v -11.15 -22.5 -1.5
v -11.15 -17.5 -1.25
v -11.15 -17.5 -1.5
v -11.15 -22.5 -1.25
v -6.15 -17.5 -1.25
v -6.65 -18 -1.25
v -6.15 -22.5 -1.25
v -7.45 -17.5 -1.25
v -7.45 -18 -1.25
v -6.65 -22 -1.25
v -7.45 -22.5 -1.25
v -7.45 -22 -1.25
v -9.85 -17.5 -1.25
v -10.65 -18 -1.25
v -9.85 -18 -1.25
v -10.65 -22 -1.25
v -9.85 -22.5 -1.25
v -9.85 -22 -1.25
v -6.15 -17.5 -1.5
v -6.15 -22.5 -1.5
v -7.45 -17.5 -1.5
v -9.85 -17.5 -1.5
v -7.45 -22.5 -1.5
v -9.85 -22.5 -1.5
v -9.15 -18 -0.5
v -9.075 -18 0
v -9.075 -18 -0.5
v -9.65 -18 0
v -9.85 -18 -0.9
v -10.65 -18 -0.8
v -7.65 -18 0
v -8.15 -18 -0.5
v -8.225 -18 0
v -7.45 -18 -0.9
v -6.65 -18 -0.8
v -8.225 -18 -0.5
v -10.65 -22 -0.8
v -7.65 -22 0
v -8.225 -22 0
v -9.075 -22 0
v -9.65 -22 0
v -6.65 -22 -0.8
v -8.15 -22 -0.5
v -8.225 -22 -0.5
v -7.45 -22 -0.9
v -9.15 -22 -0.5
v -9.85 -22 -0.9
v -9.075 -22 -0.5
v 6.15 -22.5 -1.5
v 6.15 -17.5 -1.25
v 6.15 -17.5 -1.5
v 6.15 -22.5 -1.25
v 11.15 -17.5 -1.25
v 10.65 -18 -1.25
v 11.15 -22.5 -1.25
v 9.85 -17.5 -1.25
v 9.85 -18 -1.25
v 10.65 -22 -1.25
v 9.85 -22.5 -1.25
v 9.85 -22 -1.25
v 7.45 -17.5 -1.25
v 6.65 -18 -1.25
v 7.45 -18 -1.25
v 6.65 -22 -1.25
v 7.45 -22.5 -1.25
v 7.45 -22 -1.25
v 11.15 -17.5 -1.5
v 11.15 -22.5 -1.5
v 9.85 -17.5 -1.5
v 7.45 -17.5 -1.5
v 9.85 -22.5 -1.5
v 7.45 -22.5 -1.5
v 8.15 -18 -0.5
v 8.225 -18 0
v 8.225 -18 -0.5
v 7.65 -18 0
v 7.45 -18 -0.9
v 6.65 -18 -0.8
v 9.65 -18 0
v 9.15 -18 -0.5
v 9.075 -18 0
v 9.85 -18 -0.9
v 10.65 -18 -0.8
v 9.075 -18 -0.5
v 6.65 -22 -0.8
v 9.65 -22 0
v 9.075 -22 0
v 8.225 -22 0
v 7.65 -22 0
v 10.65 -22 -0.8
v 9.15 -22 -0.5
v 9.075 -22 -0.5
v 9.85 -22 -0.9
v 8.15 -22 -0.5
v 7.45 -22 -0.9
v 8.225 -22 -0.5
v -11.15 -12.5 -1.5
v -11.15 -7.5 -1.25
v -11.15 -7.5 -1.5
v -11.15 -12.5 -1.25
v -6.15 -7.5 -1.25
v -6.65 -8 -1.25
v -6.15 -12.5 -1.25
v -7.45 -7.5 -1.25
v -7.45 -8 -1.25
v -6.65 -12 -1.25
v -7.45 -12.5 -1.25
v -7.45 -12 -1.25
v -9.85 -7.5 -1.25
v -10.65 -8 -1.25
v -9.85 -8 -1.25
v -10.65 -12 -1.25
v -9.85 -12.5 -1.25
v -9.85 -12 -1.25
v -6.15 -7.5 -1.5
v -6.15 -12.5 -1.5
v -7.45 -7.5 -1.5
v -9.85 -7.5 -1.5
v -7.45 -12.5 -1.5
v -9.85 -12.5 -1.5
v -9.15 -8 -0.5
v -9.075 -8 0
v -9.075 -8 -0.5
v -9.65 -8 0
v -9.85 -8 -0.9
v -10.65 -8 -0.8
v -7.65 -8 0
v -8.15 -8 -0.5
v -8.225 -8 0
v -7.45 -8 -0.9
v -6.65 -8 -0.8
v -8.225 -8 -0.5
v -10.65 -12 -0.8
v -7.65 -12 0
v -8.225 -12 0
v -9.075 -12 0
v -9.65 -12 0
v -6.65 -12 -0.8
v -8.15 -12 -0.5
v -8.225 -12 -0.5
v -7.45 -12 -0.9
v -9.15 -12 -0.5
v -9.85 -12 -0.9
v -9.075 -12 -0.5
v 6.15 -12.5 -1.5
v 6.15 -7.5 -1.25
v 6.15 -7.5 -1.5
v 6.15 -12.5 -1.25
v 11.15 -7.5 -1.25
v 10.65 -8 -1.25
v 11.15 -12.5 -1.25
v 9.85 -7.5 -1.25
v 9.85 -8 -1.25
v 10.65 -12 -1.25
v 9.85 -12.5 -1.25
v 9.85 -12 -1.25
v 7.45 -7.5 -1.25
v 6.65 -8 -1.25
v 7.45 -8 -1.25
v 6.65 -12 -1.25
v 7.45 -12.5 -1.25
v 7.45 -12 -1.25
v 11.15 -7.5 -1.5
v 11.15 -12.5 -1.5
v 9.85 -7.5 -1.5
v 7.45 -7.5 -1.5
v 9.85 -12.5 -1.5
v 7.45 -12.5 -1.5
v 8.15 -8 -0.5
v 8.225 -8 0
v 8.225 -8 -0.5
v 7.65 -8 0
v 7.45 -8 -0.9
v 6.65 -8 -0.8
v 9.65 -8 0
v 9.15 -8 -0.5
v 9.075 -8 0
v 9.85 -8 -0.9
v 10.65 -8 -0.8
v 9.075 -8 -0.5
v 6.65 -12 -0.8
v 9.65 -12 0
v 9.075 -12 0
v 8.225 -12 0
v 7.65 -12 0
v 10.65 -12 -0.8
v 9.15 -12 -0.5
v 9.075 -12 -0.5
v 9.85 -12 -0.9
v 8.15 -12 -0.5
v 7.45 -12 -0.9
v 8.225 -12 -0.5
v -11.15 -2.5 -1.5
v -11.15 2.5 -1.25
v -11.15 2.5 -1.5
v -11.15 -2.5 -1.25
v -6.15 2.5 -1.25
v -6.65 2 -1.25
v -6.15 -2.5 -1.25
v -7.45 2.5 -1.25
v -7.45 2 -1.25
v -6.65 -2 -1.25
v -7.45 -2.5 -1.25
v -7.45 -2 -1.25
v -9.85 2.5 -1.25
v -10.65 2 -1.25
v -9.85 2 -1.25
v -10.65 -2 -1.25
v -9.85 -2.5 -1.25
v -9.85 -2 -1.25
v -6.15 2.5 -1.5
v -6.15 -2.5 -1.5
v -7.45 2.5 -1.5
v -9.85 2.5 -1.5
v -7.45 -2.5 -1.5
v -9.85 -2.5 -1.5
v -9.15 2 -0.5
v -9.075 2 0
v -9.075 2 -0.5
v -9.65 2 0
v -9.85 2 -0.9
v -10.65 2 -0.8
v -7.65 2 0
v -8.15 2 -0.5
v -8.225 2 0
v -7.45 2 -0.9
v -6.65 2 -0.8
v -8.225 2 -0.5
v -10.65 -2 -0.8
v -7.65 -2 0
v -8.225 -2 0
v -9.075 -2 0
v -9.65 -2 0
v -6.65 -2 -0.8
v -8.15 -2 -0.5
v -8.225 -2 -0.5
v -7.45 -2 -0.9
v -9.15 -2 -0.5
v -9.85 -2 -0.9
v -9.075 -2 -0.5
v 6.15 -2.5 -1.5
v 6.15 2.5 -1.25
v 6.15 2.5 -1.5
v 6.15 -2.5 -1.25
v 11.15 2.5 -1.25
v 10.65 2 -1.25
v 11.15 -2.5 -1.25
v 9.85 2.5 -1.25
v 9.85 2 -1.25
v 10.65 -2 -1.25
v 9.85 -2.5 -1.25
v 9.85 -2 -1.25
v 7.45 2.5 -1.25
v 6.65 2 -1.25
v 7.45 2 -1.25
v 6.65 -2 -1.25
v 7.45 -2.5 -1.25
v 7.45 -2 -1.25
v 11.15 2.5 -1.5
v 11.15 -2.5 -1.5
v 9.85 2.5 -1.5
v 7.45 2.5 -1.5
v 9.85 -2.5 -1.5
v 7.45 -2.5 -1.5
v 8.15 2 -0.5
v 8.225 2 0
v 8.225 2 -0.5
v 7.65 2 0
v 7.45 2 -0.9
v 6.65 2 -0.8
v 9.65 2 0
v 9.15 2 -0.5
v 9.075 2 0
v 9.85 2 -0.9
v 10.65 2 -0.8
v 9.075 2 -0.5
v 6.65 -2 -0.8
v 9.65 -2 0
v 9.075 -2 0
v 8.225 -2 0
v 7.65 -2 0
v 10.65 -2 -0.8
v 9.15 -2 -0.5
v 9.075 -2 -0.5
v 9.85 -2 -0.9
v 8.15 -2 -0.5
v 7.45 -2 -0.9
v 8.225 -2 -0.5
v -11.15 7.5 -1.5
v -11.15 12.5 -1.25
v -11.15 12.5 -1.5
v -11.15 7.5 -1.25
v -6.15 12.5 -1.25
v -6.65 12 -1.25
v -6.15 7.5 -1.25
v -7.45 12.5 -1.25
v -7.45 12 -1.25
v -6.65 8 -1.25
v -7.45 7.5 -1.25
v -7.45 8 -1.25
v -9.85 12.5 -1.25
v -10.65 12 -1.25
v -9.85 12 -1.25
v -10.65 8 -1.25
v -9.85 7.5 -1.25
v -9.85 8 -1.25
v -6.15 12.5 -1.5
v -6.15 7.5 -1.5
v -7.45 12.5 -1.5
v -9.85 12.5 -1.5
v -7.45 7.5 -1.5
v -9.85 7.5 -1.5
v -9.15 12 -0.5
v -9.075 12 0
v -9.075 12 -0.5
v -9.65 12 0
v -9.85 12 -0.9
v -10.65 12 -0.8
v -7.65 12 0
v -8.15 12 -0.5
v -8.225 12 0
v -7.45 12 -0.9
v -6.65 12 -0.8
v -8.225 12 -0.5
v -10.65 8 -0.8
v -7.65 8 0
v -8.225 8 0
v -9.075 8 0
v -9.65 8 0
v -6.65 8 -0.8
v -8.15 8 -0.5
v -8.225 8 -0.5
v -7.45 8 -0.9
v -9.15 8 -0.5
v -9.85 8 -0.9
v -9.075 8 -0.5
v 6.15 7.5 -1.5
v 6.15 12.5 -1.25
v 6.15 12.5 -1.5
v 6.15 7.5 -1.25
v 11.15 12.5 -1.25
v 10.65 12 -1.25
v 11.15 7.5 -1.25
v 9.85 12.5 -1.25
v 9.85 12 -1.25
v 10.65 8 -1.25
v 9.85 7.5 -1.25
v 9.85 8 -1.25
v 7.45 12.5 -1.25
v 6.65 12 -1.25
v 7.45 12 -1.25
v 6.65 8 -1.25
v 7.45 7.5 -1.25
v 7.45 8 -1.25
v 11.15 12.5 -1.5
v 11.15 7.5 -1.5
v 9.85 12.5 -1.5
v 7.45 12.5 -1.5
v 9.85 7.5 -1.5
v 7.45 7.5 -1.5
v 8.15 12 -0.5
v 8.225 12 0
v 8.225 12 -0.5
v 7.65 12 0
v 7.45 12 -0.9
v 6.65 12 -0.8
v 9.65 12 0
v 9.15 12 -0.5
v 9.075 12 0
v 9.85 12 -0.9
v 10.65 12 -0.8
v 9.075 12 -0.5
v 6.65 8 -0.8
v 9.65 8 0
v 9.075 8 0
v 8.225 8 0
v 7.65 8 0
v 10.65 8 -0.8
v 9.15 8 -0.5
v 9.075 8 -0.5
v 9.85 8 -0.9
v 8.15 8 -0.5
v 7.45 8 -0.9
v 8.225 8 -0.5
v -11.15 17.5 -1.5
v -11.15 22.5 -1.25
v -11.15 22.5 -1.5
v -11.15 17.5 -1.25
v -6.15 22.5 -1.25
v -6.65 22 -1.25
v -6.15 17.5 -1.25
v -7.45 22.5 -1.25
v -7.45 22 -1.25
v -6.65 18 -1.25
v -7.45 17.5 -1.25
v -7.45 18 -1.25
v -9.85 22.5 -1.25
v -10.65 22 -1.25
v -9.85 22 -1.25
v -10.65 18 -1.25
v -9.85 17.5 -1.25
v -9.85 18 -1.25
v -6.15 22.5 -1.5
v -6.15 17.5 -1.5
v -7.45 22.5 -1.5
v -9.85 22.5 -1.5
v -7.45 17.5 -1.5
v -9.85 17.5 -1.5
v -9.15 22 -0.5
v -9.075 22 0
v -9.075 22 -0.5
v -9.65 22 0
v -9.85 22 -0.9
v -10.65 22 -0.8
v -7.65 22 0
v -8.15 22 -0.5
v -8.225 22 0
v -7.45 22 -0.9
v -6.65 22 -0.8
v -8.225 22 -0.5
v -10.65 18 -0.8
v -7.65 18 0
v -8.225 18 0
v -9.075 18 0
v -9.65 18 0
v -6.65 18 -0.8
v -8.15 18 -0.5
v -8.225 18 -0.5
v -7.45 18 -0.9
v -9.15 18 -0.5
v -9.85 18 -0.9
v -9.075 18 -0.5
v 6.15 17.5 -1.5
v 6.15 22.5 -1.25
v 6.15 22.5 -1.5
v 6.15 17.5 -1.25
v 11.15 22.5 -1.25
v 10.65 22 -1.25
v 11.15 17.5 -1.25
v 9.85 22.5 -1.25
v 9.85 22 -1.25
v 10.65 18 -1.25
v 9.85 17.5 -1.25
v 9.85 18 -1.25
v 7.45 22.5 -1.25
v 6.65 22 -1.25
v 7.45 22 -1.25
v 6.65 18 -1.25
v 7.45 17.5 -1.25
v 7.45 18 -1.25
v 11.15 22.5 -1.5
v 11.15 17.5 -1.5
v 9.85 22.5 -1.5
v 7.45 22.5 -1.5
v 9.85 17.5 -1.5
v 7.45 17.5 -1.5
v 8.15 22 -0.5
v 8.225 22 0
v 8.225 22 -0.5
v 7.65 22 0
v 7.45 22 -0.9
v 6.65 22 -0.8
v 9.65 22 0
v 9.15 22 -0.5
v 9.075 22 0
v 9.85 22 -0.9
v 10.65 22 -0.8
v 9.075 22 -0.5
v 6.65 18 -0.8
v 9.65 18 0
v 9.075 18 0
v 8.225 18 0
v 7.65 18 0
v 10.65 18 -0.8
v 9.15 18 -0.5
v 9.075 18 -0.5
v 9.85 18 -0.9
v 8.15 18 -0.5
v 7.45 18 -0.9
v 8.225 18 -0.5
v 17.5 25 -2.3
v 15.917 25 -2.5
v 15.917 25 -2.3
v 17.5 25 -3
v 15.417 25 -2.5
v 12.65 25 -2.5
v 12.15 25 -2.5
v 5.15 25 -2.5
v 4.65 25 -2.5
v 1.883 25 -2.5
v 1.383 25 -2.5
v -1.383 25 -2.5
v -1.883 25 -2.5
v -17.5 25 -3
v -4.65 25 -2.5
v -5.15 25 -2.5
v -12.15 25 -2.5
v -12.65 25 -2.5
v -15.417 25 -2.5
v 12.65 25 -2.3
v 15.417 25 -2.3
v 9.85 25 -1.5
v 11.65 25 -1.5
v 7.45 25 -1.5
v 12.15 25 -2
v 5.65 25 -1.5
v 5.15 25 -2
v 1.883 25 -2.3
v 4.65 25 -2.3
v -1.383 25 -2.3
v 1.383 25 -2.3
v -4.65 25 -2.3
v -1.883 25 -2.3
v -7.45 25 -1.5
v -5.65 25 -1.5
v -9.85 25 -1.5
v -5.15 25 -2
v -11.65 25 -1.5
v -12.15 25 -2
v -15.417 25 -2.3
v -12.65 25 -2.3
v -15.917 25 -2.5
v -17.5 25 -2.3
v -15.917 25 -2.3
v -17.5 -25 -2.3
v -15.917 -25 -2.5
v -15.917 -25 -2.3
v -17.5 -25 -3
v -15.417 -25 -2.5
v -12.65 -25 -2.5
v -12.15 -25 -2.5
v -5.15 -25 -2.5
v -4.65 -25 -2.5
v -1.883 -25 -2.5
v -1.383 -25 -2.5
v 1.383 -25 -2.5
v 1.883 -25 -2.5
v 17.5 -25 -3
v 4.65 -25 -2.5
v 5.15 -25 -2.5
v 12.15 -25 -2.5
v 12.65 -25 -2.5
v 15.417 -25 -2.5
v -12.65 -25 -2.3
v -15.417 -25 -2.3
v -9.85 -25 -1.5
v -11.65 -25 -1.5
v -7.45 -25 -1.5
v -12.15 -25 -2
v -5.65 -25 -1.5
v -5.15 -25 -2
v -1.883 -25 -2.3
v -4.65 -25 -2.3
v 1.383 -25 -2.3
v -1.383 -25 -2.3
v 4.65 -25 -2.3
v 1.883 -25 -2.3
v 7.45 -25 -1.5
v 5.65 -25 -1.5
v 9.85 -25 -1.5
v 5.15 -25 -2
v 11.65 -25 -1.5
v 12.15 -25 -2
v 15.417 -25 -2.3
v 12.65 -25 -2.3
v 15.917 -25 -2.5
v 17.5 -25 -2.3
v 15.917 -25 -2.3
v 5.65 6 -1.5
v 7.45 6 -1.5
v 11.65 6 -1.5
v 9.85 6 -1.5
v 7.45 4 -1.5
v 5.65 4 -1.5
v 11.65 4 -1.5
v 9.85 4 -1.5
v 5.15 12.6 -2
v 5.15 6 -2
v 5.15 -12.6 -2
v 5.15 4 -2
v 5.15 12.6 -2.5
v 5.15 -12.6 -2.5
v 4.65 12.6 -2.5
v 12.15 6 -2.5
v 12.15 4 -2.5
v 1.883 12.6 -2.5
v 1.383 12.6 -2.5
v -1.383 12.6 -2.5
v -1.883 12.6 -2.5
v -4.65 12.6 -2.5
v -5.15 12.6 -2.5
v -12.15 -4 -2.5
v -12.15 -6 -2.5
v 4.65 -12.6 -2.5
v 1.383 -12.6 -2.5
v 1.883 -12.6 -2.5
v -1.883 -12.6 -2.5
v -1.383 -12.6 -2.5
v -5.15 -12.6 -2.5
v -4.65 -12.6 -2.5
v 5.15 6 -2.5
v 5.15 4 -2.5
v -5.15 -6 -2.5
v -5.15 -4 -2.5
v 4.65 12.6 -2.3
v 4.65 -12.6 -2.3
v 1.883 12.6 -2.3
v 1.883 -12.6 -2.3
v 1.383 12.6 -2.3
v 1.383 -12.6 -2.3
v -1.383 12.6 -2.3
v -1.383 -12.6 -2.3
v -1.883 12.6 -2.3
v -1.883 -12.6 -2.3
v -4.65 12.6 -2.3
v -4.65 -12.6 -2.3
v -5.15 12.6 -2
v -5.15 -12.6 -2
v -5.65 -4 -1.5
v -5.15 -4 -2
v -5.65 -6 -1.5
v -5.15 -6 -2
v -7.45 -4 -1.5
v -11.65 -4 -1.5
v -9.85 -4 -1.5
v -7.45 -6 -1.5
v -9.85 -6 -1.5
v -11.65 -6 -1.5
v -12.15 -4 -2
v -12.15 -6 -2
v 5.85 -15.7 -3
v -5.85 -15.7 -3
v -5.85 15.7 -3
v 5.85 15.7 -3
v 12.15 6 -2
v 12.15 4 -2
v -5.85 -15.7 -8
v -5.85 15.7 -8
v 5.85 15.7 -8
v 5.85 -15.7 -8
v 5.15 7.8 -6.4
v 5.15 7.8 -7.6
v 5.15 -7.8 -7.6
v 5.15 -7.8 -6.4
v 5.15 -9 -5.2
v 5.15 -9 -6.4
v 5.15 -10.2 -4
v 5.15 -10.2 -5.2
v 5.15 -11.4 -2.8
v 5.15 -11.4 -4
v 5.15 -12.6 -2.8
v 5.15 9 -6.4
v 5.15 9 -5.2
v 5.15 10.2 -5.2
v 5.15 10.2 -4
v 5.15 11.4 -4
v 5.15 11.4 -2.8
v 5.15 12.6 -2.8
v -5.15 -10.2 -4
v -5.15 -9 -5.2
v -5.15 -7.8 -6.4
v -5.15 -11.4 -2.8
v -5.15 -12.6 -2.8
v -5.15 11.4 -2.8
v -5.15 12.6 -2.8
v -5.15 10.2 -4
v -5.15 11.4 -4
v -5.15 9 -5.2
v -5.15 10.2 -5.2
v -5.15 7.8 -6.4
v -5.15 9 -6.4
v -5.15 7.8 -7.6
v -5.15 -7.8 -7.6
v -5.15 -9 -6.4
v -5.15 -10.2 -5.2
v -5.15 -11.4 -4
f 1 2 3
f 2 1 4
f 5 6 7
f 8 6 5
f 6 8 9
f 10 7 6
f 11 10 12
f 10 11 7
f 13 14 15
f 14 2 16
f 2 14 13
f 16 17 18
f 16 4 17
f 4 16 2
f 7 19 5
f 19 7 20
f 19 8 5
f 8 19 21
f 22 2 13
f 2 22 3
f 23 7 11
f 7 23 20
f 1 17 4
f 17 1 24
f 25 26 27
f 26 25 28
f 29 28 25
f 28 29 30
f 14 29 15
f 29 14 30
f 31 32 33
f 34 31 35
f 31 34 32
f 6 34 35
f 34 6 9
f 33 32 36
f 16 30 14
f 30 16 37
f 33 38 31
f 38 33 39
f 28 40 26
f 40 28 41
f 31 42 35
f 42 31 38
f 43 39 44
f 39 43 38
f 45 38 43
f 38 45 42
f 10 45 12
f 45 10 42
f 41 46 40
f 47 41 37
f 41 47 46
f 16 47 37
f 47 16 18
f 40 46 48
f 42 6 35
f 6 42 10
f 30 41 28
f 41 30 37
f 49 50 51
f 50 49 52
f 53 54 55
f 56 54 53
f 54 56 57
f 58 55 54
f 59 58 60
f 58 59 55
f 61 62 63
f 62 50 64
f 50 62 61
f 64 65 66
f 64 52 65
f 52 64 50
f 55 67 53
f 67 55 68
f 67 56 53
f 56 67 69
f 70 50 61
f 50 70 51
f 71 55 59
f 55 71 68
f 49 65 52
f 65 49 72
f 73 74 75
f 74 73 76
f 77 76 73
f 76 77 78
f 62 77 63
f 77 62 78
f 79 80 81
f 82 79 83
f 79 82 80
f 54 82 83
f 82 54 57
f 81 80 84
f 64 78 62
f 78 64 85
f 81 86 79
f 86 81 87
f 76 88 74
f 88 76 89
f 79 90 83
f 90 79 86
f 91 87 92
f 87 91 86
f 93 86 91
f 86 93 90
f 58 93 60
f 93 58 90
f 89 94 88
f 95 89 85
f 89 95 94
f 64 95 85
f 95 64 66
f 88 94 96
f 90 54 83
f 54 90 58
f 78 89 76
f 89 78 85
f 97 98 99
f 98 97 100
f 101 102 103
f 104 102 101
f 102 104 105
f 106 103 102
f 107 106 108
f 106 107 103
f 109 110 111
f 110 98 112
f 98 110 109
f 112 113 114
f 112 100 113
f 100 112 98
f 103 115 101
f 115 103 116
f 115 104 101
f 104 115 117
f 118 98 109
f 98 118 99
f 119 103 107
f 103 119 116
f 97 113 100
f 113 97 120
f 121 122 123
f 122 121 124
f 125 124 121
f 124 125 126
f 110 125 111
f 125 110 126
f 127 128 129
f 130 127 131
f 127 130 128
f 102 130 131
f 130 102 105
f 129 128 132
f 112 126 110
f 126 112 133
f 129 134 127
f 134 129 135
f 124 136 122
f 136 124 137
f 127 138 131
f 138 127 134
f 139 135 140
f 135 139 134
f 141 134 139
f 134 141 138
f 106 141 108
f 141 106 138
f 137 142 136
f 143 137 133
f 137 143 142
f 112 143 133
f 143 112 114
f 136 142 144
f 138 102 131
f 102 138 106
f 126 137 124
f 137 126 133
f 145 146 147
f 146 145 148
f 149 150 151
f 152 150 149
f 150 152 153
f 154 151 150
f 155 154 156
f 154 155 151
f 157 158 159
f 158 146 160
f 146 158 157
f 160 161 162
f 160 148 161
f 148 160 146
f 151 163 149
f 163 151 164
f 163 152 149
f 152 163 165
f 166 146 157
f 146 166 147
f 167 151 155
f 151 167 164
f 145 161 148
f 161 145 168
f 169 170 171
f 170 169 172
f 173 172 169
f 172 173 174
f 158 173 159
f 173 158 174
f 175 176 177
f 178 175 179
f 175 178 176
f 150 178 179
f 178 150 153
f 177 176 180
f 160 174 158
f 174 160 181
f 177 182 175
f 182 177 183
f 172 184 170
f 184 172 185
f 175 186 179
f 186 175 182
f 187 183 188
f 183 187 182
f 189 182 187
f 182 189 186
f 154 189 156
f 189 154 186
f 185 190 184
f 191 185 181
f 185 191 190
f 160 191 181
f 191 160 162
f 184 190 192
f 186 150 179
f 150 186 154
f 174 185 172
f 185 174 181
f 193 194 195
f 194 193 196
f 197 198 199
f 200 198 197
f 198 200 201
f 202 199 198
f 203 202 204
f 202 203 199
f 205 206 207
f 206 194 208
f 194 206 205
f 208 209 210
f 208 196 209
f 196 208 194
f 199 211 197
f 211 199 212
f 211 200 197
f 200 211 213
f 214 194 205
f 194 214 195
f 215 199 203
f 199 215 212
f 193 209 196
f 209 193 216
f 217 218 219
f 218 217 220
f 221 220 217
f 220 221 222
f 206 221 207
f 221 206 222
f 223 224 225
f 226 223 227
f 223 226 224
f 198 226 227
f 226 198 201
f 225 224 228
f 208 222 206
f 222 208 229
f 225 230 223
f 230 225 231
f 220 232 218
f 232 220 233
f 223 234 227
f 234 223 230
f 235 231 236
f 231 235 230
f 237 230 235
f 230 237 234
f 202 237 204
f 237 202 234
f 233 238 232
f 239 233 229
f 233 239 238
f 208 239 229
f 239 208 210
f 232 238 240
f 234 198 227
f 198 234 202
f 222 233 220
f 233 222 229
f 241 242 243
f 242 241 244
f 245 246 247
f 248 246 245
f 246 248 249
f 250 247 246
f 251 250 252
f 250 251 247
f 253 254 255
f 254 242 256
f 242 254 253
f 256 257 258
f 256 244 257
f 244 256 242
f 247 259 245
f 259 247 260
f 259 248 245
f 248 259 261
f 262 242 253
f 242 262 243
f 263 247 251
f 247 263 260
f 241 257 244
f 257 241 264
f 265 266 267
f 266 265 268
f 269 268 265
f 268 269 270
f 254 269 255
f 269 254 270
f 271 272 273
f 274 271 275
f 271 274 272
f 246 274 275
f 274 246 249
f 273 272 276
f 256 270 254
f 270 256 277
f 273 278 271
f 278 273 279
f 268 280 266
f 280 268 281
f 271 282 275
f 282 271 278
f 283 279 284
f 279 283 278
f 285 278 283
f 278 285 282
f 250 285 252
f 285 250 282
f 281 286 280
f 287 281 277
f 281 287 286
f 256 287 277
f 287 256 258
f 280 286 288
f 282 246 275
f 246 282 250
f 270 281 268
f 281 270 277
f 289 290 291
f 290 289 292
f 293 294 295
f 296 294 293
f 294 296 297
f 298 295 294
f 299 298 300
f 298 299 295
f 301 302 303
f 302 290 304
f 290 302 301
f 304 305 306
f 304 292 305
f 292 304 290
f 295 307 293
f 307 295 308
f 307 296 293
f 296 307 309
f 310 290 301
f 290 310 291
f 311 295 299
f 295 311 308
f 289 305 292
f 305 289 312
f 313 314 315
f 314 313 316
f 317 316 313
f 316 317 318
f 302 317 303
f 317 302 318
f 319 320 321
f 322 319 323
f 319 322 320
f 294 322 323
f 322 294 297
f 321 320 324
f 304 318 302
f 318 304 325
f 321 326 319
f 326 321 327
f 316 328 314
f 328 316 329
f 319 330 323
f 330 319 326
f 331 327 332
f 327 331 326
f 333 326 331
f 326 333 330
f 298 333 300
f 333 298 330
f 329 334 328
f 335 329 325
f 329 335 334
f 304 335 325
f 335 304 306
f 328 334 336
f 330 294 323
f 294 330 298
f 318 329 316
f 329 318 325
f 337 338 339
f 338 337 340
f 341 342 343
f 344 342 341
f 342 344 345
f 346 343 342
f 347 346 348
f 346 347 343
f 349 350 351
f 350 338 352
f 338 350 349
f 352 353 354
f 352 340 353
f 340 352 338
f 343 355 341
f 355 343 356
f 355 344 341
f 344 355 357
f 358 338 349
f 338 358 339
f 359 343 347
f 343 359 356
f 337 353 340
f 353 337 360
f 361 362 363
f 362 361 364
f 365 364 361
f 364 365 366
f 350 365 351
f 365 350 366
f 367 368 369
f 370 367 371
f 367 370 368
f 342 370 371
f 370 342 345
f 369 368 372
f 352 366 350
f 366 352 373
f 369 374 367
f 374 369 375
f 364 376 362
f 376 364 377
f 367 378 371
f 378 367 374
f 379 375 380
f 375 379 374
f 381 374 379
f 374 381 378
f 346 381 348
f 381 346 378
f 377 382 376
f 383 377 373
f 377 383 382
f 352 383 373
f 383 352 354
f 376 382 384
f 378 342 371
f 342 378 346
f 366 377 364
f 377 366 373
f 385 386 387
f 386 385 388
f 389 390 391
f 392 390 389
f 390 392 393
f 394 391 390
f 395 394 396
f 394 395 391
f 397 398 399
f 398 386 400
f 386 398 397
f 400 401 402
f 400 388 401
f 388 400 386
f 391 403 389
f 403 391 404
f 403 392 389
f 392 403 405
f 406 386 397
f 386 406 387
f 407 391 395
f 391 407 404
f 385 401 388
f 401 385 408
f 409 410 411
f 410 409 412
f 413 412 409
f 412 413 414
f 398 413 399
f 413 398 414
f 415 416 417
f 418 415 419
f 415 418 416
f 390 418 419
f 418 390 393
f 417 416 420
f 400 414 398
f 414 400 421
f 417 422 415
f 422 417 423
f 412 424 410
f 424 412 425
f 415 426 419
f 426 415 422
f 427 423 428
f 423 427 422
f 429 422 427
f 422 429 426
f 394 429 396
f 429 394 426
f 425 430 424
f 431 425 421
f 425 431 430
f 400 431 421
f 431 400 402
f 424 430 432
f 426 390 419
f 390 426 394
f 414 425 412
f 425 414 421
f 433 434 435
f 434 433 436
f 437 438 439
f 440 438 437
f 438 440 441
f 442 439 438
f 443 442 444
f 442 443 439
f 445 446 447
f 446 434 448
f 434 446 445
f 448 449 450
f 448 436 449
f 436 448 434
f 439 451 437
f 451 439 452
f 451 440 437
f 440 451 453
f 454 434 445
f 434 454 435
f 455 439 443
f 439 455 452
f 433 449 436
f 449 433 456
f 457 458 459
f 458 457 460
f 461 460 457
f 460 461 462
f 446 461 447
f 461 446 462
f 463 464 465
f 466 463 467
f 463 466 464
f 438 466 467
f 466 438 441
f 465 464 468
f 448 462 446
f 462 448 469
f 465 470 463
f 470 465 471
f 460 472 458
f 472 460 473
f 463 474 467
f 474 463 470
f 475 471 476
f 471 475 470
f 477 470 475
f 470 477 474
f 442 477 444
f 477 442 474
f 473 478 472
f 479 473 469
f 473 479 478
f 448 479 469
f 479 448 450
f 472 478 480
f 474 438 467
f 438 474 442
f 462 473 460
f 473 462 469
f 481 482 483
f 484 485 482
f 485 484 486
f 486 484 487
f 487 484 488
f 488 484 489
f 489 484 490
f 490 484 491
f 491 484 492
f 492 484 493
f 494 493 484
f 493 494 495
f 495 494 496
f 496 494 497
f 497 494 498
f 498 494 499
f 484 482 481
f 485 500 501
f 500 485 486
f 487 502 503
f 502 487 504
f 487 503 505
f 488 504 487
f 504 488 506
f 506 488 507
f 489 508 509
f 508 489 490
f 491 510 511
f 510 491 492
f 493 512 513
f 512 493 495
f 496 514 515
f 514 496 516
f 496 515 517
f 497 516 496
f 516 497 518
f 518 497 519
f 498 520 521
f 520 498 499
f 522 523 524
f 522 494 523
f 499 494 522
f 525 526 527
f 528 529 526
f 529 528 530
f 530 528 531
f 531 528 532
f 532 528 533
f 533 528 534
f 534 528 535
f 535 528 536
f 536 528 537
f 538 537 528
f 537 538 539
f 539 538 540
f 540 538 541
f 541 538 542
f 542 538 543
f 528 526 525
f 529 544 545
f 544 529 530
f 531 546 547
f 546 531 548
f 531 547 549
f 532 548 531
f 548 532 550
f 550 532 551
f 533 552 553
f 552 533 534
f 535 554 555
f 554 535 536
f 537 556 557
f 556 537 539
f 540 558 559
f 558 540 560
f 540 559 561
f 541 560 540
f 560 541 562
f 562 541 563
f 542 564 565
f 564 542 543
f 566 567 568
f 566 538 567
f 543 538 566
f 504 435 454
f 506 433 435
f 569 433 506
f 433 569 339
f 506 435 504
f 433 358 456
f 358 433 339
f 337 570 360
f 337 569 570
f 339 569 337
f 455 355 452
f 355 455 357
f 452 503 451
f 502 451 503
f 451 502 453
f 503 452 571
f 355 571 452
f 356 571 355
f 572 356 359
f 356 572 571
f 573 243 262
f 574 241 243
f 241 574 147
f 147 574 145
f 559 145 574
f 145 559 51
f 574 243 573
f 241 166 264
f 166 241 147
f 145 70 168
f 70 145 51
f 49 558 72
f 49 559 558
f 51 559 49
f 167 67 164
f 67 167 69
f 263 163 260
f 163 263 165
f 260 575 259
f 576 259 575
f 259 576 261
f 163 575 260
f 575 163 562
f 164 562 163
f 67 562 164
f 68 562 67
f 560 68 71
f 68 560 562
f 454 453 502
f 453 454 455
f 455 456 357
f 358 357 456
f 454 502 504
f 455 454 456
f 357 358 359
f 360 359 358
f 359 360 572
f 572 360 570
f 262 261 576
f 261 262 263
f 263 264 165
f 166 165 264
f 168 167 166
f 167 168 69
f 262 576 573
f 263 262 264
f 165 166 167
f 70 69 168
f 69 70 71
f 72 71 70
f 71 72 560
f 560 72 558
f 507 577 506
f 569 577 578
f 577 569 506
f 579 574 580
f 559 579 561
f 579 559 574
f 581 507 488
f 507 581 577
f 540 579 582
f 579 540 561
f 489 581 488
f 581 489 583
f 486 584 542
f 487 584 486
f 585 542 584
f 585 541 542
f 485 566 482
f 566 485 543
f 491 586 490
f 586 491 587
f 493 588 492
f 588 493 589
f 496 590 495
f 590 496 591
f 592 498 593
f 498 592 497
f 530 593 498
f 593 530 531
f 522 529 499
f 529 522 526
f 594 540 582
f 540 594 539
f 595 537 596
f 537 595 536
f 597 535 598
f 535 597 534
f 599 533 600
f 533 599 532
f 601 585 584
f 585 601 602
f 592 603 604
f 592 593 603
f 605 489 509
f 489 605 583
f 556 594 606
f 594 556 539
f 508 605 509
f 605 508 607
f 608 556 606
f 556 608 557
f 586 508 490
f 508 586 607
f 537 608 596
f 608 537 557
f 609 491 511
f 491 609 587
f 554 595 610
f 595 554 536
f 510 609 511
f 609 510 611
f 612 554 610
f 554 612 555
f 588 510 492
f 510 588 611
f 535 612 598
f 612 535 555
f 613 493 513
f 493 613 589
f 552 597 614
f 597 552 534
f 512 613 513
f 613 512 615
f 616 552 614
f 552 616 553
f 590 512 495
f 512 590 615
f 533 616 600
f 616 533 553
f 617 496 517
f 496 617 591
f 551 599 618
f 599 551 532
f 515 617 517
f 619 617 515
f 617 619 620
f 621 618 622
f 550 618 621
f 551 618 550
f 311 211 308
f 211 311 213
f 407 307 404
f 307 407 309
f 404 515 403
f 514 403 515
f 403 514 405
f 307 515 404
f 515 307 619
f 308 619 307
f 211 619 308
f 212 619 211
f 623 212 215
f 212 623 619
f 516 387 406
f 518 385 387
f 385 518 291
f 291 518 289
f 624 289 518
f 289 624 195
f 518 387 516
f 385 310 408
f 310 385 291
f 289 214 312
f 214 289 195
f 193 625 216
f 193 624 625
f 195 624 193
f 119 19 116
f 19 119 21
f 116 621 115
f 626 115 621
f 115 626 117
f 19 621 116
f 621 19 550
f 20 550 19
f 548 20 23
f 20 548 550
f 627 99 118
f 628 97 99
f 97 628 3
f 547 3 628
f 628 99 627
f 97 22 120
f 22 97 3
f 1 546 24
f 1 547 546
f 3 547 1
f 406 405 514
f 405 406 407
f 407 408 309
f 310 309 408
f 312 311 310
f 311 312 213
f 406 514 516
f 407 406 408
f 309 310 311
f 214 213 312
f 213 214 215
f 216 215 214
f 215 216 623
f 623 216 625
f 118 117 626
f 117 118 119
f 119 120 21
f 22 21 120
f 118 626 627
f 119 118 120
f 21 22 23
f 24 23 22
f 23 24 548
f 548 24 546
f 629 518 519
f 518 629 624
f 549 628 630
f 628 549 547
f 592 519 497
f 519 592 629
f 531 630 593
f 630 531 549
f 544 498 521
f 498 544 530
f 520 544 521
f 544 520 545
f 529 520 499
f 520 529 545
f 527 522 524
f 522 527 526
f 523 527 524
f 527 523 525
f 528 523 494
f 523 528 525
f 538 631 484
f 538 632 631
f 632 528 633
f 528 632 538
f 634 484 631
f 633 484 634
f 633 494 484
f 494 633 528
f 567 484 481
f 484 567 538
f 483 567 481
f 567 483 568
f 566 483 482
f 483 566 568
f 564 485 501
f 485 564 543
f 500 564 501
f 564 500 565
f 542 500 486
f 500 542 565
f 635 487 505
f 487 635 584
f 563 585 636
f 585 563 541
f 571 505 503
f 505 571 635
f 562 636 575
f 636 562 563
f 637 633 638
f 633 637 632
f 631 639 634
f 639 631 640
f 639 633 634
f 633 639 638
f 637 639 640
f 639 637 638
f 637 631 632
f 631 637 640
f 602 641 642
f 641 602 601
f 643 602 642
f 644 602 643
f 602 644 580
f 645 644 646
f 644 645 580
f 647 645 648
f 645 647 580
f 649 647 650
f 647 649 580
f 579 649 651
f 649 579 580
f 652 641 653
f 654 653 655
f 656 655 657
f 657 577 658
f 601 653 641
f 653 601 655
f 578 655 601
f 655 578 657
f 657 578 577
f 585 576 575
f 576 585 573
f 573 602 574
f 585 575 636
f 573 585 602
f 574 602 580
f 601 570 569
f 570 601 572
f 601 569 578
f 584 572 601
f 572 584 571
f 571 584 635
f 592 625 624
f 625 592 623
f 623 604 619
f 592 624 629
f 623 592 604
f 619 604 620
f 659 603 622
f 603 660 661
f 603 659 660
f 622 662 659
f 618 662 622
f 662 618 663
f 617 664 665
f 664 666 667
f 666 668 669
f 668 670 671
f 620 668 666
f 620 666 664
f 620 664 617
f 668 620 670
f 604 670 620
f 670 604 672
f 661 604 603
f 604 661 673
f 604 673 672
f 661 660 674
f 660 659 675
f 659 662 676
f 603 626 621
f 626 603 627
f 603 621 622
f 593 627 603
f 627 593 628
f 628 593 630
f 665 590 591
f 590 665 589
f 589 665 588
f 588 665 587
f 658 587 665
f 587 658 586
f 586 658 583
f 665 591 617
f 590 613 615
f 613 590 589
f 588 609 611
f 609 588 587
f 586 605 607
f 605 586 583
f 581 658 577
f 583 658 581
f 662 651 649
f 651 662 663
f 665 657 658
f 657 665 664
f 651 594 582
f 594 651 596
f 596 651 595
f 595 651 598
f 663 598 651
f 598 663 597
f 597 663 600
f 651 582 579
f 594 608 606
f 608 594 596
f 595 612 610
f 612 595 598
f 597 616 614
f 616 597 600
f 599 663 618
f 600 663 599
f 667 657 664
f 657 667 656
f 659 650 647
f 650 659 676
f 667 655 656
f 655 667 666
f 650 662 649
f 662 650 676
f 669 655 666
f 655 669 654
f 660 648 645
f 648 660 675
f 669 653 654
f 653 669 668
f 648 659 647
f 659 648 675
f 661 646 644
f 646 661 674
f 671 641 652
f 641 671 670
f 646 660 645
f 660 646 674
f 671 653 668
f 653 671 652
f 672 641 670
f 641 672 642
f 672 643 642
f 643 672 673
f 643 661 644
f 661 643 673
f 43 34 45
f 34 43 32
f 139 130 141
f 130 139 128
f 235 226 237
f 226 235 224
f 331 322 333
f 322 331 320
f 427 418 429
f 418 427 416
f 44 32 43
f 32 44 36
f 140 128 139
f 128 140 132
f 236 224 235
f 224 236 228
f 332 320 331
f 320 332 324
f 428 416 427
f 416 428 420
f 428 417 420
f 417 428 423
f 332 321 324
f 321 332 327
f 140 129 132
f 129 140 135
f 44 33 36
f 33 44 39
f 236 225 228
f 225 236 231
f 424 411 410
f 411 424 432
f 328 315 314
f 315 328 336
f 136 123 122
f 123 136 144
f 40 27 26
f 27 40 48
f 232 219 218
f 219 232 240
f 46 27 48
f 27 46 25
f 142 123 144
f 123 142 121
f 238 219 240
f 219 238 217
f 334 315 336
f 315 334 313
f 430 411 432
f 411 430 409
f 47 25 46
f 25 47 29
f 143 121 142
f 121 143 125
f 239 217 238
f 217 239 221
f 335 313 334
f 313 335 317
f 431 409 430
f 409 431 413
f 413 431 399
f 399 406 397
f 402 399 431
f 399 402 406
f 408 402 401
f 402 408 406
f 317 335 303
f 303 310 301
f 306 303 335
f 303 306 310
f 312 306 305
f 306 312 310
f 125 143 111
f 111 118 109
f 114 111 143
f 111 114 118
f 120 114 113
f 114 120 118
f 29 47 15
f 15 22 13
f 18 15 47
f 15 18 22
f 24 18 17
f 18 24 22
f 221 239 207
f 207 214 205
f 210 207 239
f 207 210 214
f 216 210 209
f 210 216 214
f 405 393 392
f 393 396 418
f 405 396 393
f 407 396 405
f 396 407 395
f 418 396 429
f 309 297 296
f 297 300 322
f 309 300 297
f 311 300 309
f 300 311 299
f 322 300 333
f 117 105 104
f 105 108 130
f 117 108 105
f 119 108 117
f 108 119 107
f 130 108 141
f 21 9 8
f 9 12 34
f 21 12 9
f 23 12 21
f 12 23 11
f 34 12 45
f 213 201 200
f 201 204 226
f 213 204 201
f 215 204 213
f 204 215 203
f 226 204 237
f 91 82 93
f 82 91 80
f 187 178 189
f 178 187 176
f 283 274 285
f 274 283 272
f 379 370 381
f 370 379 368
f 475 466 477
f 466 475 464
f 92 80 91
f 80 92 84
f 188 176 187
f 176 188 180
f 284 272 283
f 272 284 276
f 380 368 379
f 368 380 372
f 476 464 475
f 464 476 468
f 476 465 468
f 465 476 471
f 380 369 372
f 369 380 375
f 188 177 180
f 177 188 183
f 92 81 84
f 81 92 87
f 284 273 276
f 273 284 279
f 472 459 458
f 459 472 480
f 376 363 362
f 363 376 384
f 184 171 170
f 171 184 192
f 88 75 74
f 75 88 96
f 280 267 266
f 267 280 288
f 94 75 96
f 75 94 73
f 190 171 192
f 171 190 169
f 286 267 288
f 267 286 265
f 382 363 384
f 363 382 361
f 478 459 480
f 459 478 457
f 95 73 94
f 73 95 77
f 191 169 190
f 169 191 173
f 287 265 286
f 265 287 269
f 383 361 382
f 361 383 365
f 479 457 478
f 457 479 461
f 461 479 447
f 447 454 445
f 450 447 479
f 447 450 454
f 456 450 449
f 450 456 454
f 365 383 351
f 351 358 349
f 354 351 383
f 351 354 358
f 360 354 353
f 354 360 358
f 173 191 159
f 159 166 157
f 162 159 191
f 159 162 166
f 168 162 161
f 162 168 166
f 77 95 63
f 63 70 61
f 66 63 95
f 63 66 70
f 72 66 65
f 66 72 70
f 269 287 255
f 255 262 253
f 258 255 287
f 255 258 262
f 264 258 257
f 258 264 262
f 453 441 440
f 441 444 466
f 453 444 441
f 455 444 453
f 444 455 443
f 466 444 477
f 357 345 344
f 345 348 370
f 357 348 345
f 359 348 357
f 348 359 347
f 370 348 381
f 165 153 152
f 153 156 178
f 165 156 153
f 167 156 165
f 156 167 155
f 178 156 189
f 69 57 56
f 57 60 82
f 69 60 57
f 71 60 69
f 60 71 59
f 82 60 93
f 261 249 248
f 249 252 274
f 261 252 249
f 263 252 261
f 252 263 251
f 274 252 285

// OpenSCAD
$fn = 32;
length = 50;
width  = 35;


rail_width = 17.3;

bias=0.001;

stand_distance = 10;

yn = floor((length - 6) / stand_distance);

pitt = true;

difference() {
    union() {
        stands();
        board();
        if (pitt) translate([0,0,-5.5/2- 2.5]) cube([10.3+.7*2, 30+.7*2, 5.5], true);
    }
    rails();
    if (!pitt) cylinder(d=3, h=100, center=true);
    echo((yn % 2 == 0));
    for(a=[0, 180]) rotate(a) {
        translate([rail_width/2, (yn % 2 == 0) ? stand_distance / 2 : 0, -1.5]) {
            cube([7, 2, 2], true);
        }
    }
    if (pitt) for (z=[0:1.2:8]) {
        cube([10.3,30 - z * 2,z * 2 + .8], true);
    }
}

module board() {
    rotate(90, [1, 0, 0]) linear_extrude(length, center=true) {
        union() {
            difference() {
                translate([0, -3+0.7/2]) square([width,0.7], true);
                m = (rail_width - 7 - 0.5) / 3;
                for(x=[-1.5*m:m:1.5*m]) translate([x, -3 + 0.5/2 + 0.5]) {
                    square(0.5, true);
                }
                for(xs=[-1,1]) for(x=[(rail_width + 7 + 0.5) / 2: m: width /2]) {
                    translate([x*xs,-3 + 0.5/2 + 0.5]) {
                        square(0.5, true);
                    }
                }
                
            }
            
            l = rail_width / 2;
            for(x=[-l,l]) translate([x, 0]) {
                hull() {
                    translate([0, -2]) square([6, 1], true);
                    translate([0, -2.5]) square([7, 1], true);
                }
            }
        }
    }
    
    translate([0,0, -3+0.5/2])cube([width, length, 0.5], true);
}

module stands() {
    
    for (yi = [-yn / 2: yn/2], y = yi* stand_distance) {
        l = rail_width / 2;
        for(x=[-l,l]) translate([x, y]) {
            stand();
        }
    }
}

module stand() {
    translate([0,0,-1.55]) cube([5,5, .6], true);
    rotate(90, [1, 0,0])linear_extrude(4, center = true) {
        union() {
            hull() {
                translate([0,-1/2]) square([2,1], true);
                translate([0,-1/2 -.8]) square([4,1], true);
            }
        }
    }
}

module rails() {
    rotate(90, [1, 0, 0]) {
        linear_extrude(length + bias, center = true) {
            l = rail_width / 2;
            for(x=[-l,l]) translate([x, 0]) {
                rail_2d();
            }
        }
    }
}

module rail_2d() {
    square([.85,3], true);
    hull() {
        translate([0, -1.5 + .6 / 2])square([2.4,.6], true);
        translate([0, -1.0 + .5 / 2])square([  1,.5], true);
    }
}
